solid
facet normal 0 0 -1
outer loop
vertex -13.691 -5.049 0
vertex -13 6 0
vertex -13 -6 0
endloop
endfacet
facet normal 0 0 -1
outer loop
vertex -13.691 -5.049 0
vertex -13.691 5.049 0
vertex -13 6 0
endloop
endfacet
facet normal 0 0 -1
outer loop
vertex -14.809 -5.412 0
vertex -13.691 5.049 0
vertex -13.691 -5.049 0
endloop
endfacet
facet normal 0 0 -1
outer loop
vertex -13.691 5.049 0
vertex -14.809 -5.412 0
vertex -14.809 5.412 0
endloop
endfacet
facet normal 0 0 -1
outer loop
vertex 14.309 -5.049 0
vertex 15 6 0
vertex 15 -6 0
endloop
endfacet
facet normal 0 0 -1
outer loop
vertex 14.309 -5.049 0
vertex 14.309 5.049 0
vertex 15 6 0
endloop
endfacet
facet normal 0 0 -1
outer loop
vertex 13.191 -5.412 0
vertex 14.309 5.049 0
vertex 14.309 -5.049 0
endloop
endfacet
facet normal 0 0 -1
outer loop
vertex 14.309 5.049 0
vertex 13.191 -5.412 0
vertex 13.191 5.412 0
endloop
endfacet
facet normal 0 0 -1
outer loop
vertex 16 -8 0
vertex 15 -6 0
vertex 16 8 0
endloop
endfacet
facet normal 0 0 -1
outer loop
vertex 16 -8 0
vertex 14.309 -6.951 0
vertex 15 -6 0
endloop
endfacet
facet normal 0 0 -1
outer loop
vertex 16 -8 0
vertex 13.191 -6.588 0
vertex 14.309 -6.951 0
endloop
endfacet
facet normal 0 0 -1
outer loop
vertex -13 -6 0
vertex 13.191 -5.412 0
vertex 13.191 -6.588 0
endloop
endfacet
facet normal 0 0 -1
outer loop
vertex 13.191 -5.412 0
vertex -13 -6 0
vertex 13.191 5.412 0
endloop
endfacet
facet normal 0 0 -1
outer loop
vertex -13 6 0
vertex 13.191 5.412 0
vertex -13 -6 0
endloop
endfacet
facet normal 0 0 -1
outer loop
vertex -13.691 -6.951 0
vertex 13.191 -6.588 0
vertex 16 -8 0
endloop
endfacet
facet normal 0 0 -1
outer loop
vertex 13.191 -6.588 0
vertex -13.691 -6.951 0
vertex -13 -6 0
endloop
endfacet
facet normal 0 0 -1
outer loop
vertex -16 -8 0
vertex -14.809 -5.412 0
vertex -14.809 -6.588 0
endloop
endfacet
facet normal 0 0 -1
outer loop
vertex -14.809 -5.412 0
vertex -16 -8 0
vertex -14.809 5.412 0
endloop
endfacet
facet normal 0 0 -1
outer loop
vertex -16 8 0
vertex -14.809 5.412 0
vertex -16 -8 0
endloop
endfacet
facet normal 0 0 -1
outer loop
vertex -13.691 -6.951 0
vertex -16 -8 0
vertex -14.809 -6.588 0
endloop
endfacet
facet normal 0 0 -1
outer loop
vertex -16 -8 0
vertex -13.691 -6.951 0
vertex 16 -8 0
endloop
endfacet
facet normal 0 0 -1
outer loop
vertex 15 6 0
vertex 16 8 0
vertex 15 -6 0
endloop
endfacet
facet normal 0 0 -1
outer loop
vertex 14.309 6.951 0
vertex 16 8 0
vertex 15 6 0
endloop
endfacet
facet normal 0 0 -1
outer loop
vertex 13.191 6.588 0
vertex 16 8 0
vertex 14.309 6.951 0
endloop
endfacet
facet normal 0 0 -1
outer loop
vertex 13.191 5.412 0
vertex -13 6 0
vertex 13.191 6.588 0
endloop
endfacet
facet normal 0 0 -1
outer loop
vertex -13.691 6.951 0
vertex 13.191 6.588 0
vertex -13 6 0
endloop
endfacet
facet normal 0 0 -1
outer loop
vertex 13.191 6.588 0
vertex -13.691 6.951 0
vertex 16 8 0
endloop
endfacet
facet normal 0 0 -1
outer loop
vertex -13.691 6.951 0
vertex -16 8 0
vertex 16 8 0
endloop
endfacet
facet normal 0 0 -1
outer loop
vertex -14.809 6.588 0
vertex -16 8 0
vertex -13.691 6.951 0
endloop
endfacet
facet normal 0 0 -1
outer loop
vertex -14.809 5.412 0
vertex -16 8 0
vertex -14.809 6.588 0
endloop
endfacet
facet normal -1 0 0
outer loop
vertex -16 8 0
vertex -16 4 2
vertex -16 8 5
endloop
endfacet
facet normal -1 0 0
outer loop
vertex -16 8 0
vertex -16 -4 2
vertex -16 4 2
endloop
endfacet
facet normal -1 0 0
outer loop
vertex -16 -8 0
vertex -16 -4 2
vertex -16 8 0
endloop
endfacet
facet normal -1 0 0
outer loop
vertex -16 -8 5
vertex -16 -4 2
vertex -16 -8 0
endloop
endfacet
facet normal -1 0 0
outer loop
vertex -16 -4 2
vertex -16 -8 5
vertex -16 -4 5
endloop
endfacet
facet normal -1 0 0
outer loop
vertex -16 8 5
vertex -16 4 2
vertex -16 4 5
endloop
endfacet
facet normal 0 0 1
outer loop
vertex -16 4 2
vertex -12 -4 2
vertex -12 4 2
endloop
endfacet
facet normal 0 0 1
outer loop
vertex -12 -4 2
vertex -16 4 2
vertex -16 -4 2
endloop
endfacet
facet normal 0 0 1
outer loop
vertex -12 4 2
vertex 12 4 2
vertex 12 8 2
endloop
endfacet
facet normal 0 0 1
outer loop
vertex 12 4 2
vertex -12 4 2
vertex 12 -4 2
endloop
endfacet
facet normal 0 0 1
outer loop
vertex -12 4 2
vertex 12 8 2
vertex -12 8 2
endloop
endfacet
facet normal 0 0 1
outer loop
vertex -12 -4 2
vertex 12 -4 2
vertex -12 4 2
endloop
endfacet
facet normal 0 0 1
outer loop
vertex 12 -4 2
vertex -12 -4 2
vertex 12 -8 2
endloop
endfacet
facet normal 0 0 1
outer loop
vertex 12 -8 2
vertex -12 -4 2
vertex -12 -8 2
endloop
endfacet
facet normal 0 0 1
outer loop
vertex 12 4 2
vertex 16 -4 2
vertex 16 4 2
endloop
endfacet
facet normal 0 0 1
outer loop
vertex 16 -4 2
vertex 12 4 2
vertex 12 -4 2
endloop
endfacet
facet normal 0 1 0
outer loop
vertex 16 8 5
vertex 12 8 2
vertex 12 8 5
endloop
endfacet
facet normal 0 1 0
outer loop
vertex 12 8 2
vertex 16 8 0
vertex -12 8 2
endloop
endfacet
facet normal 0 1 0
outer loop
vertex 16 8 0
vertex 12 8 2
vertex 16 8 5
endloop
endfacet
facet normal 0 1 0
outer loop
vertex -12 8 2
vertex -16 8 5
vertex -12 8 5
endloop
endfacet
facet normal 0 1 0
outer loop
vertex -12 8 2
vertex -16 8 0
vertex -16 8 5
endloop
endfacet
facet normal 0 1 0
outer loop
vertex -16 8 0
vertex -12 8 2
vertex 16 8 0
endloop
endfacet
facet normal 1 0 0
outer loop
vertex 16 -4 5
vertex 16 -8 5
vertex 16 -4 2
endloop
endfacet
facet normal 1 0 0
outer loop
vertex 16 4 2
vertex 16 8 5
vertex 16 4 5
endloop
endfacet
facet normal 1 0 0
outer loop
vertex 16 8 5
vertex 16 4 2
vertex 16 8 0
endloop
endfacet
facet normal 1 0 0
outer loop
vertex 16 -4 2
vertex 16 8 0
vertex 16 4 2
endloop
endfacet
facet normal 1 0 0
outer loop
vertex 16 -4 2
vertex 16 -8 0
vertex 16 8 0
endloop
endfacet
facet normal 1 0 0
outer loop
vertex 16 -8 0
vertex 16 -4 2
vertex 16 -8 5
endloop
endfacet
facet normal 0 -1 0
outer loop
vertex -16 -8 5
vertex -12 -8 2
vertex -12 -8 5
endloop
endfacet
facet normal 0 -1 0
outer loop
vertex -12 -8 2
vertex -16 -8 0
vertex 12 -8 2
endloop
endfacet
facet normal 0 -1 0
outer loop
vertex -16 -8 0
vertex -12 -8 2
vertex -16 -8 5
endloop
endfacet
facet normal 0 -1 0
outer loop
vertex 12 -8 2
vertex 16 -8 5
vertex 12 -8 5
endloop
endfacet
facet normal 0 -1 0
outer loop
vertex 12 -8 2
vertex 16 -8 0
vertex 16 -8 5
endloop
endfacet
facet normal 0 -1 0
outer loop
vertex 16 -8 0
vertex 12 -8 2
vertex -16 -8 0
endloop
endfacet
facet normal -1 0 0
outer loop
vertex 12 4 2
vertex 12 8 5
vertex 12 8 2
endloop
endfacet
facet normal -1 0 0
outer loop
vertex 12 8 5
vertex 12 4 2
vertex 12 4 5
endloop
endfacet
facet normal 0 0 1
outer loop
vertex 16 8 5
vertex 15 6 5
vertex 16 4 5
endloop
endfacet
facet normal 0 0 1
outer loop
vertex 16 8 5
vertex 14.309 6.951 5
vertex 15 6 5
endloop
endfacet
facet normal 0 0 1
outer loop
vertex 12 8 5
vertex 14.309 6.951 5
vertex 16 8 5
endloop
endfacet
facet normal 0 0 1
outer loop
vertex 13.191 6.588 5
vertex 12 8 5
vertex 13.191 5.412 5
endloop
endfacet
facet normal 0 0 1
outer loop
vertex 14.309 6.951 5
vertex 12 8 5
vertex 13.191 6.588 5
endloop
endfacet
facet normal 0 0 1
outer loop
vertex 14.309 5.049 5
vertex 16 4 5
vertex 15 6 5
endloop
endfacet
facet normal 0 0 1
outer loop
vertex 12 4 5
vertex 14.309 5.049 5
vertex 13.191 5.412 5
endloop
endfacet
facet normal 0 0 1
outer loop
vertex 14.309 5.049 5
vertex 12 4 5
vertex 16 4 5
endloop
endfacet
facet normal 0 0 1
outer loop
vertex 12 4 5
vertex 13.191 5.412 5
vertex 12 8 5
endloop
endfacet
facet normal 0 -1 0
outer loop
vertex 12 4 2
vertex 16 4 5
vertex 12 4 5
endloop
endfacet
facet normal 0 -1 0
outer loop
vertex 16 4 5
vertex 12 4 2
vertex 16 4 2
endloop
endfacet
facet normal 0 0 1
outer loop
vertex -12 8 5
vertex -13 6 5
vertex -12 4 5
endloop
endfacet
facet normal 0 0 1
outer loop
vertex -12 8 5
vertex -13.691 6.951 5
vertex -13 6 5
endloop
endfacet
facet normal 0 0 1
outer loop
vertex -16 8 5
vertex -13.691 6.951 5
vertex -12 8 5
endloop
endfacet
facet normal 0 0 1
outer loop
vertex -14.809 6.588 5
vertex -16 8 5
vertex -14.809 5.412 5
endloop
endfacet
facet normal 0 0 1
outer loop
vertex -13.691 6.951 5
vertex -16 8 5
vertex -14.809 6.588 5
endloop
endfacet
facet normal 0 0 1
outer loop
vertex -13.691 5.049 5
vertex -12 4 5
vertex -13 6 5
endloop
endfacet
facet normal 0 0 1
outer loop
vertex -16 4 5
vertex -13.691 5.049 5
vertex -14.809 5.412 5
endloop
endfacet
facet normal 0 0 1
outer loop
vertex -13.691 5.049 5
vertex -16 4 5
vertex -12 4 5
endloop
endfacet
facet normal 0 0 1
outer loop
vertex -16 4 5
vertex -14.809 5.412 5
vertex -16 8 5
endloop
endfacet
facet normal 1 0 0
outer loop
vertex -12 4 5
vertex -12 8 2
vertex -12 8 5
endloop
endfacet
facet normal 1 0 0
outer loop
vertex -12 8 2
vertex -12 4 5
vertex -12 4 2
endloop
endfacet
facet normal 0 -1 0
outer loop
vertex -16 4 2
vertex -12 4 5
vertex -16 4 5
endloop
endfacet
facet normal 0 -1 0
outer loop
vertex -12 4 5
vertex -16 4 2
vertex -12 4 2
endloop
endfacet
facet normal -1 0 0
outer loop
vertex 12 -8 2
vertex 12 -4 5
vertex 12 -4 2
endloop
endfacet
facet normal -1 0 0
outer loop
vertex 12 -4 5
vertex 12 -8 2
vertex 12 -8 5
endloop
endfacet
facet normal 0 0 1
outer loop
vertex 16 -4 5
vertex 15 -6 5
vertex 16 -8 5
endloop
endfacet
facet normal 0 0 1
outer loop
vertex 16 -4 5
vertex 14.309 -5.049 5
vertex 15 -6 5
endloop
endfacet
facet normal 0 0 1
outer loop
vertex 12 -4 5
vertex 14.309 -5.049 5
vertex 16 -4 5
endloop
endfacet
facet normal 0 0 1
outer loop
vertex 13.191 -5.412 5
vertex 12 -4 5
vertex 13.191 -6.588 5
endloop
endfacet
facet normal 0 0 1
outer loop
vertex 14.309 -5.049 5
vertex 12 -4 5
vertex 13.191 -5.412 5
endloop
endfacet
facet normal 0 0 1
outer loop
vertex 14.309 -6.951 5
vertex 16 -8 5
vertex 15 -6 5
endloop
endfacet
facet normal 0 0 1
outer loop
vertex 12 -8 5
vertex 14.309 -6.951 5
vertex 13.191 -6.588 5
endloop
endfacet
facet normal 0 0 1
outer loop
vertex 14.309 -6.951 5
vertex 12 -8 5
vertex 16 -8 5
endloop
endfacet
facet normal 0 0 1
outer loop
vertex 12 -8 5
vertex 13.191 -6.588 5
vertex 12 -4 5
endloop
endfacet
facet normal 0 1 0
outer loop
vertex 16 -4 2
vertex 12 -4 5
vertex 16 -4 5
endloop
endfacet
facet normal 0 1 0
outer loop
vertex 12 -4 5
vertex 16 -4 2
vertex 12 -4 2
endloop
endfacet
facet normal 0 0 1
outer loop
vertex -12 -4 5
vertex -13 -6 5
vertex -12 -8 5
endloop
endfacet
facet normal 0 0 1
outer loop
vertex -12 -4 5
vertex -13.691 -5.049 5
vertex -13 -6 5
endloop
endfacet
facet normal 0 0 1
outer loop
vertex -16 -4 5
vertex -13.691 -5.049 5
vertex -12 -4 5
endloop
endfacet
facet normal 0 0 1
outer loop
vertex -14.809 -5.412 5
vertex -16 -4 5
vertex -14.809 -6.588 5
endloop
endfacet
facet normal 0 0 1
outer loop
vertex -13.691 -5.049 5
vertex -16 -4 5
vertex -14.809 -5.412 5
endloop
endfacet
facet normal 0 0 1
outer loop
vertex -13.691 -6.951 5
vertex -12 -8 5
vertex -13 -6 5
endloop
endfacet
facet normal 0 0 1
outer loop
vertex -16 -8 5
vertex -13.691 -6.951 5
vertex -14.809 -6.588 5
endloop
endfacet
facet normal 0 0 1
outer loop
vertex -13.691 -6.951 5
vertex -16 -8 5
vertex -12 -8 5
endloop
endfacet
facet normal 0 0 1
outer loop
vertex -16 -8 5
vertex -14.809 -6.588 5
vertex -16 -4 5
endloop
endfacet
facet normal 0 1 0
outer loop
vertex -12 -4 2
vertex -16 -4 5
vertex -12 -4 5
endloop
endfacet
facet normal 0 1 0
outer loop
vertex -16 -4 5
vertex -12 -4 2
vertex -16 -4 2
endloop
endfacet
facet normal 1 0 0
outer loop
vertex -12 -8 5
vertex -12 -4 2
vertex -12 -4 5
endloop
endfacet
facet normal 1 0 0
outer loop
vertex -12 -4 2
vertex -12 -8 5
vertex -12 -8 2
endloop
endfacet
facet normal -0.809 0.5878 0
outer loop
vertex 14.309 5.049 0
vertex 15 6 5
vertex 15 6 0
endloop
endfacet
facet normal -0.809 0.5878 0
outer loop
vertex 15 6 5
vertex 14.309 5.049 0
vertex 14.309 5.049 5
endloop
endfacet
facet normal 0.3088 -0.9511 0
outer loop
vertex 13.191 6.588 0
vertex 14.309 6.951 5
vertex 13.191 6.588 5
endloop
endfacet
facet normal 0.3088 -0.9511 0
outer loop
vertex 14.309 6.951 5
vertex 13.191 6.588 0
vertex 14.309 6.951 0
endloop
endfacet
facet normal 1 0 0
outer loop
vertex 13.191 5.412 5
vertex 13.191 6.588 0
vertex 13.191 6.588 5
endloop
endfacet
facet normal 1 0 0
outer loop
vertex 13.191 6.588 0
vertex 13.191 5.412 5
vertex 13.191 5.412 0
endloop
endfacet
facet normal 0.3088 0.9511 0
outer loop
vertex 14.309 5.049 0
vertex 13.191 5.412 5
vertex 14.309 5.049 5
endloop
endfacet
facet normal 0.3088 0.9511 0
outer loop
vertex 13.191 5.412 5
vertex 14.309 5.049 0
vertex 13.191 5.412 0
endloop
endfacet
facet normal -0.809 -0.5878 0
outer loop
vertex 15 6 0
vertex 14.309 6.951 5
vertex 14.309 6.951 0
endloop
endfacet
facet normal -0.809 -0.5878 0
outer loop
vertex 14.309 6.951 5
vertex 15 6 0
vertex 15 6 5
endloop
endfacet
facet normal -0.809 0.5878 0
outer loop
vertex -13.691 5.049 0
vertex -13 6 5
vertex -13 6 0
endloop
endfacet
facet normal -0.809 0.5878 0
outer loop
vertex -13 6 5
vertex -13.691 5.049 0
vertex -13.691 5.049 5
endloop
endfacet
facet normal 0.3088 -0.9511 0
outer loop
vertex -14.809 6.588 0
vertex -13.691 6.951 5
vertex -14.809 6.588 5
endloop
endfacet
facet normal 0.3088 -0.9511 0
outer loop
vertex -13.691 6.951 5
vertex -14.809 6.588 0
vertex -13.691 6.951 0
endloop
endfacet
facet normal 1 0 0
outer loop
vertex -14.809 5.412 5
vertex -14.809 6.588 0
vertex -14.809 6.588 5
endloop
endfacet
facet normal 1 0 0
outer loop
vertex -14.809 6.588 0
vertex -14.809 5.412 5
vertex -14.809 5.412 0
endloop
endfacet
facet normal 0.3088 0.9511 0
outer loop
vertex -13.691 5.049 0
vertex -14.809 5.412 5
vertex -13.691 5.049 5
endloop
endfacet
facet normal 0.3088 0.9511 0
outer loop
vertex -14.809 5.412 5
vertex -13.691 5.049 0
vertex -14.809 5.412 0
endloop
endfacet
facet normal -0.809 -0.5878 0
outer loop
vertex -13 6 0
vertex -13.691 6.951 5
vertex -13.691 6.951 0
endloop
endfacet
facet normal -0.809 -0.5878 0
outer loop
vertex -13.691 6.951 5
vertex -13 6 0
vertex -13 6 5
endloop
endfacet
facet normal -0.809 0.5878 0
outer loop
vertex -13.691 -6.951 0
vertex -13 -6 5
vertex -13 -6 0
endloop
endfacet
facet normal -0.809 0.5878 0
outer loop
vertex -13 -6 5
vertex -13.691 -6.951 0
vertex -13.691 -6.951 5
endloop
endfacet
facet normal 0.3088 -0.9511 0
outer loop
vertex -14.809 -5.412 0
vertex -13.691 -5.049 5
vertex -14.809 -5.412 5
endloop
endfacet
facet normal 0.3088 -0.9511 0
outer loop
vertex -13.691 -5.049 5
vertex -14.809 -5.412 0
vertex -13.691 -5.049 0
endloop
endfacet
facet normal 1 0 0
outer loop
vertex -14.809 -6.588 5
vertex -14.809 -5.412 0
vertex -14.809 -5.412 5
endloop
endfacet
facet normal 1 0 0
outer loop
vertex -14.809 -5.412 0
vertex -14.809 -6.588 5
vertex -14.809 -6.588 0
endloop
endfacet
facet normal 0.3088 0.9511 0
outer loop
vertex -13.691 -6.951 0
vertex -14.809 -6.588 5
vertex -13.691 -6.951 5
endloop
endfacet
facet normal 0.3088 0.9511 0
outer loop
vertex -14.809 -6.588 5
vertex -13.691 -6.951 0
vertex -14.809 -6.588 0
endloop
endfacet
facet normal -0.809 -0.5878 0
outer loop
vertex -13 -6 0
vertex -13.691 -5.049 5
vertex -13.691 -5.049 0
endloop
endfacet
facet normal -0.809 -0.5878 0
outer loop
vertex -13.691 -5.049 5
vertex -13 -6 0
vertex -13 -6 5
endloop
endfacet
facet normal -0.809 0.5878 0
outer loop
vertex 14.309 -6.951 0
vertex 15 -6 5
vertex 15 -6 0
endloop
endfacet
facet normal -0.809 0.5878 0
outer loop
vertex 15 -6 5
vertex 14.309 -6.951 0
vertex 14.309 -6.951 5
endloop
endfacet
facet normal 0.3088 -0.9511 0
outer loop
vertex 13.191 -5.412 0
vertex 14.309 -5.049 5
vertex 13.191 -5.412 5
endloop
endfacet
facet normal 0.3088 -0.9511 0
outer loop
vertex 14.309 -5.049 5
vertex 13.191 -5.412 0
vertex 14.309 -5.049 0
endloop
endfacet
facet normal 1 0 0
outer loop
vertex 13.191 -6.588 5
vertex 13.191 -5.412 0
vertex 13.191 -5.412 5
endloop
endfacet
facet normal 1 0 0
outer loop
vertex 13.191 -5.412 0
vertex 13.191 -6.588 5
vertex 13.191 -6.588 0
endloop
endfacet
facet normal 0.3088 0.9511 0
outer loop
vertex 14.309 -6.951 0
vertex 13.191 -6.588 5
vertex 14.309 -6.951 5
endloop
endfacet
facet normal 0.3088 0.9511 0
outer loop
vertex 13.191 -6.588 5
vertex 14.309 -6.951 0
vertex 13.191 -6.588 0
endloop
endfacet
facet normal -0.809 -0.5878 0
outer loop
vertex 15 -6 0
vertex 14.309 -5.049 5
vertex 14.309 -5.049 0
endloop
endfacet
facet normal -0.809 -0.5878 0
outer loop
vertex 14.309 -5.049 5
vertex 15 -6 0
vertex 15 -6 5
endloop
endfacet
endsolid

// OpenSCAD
// OV9281 mounting board
// (c) 2026 Bernd Porr

// width of the board
w = 32;

// height of the board
h = 16;

// thickness of the board
thickness = 2;

// x coord of the drillhole
xhole = 14.0;

// y coord of the drillhole
yhole = 6;

// diameter of the drillhole
drilldiam = 2;

// diameter of the post
postdiam = 4;

// height of the post
postheight = 3;

color("grey")
difference() {
    union() {
        linear_extrude(height = thickness)
        square([w, h], center = true);
        translate([xhole,yhole,0])
        linear_extrude(height = postheight + thickness)
        square(postdiam,true);    
        translate([-xhole,yhole,0])
        linear_extrude(height = postheight + thickness)
        square(postdiam,true);    
        translate([xhole,-yhole,0])
        linear_extrude(height = postheight + thickness)
        square(postdiam,true);    
        translate([-xhole,-yhole,0])
        linear_extrude(height = postheight + thickness)
        square(postdiam,true);    
    }

    // drillholes
    translate([xhole,yhole,-1])
    linear_extrude(height = postheight + thickness + 2)
    circle(d=drilldiam);

    translate([-xhole,yhole,-1])
    linear_extrude(height = postheight + thickness + 2)
    circle(d=drilldiam);

    translate([-xhole,-yhole,-1])
    linear_extrude(height = postheight + thickness + 2)
    circle(d=drilldiam);
    
    translate([xhole,-yhole,-1])
    linear_extrude(height = postheight + thickness + 2)
    circle(d=drilldiam);    

}
